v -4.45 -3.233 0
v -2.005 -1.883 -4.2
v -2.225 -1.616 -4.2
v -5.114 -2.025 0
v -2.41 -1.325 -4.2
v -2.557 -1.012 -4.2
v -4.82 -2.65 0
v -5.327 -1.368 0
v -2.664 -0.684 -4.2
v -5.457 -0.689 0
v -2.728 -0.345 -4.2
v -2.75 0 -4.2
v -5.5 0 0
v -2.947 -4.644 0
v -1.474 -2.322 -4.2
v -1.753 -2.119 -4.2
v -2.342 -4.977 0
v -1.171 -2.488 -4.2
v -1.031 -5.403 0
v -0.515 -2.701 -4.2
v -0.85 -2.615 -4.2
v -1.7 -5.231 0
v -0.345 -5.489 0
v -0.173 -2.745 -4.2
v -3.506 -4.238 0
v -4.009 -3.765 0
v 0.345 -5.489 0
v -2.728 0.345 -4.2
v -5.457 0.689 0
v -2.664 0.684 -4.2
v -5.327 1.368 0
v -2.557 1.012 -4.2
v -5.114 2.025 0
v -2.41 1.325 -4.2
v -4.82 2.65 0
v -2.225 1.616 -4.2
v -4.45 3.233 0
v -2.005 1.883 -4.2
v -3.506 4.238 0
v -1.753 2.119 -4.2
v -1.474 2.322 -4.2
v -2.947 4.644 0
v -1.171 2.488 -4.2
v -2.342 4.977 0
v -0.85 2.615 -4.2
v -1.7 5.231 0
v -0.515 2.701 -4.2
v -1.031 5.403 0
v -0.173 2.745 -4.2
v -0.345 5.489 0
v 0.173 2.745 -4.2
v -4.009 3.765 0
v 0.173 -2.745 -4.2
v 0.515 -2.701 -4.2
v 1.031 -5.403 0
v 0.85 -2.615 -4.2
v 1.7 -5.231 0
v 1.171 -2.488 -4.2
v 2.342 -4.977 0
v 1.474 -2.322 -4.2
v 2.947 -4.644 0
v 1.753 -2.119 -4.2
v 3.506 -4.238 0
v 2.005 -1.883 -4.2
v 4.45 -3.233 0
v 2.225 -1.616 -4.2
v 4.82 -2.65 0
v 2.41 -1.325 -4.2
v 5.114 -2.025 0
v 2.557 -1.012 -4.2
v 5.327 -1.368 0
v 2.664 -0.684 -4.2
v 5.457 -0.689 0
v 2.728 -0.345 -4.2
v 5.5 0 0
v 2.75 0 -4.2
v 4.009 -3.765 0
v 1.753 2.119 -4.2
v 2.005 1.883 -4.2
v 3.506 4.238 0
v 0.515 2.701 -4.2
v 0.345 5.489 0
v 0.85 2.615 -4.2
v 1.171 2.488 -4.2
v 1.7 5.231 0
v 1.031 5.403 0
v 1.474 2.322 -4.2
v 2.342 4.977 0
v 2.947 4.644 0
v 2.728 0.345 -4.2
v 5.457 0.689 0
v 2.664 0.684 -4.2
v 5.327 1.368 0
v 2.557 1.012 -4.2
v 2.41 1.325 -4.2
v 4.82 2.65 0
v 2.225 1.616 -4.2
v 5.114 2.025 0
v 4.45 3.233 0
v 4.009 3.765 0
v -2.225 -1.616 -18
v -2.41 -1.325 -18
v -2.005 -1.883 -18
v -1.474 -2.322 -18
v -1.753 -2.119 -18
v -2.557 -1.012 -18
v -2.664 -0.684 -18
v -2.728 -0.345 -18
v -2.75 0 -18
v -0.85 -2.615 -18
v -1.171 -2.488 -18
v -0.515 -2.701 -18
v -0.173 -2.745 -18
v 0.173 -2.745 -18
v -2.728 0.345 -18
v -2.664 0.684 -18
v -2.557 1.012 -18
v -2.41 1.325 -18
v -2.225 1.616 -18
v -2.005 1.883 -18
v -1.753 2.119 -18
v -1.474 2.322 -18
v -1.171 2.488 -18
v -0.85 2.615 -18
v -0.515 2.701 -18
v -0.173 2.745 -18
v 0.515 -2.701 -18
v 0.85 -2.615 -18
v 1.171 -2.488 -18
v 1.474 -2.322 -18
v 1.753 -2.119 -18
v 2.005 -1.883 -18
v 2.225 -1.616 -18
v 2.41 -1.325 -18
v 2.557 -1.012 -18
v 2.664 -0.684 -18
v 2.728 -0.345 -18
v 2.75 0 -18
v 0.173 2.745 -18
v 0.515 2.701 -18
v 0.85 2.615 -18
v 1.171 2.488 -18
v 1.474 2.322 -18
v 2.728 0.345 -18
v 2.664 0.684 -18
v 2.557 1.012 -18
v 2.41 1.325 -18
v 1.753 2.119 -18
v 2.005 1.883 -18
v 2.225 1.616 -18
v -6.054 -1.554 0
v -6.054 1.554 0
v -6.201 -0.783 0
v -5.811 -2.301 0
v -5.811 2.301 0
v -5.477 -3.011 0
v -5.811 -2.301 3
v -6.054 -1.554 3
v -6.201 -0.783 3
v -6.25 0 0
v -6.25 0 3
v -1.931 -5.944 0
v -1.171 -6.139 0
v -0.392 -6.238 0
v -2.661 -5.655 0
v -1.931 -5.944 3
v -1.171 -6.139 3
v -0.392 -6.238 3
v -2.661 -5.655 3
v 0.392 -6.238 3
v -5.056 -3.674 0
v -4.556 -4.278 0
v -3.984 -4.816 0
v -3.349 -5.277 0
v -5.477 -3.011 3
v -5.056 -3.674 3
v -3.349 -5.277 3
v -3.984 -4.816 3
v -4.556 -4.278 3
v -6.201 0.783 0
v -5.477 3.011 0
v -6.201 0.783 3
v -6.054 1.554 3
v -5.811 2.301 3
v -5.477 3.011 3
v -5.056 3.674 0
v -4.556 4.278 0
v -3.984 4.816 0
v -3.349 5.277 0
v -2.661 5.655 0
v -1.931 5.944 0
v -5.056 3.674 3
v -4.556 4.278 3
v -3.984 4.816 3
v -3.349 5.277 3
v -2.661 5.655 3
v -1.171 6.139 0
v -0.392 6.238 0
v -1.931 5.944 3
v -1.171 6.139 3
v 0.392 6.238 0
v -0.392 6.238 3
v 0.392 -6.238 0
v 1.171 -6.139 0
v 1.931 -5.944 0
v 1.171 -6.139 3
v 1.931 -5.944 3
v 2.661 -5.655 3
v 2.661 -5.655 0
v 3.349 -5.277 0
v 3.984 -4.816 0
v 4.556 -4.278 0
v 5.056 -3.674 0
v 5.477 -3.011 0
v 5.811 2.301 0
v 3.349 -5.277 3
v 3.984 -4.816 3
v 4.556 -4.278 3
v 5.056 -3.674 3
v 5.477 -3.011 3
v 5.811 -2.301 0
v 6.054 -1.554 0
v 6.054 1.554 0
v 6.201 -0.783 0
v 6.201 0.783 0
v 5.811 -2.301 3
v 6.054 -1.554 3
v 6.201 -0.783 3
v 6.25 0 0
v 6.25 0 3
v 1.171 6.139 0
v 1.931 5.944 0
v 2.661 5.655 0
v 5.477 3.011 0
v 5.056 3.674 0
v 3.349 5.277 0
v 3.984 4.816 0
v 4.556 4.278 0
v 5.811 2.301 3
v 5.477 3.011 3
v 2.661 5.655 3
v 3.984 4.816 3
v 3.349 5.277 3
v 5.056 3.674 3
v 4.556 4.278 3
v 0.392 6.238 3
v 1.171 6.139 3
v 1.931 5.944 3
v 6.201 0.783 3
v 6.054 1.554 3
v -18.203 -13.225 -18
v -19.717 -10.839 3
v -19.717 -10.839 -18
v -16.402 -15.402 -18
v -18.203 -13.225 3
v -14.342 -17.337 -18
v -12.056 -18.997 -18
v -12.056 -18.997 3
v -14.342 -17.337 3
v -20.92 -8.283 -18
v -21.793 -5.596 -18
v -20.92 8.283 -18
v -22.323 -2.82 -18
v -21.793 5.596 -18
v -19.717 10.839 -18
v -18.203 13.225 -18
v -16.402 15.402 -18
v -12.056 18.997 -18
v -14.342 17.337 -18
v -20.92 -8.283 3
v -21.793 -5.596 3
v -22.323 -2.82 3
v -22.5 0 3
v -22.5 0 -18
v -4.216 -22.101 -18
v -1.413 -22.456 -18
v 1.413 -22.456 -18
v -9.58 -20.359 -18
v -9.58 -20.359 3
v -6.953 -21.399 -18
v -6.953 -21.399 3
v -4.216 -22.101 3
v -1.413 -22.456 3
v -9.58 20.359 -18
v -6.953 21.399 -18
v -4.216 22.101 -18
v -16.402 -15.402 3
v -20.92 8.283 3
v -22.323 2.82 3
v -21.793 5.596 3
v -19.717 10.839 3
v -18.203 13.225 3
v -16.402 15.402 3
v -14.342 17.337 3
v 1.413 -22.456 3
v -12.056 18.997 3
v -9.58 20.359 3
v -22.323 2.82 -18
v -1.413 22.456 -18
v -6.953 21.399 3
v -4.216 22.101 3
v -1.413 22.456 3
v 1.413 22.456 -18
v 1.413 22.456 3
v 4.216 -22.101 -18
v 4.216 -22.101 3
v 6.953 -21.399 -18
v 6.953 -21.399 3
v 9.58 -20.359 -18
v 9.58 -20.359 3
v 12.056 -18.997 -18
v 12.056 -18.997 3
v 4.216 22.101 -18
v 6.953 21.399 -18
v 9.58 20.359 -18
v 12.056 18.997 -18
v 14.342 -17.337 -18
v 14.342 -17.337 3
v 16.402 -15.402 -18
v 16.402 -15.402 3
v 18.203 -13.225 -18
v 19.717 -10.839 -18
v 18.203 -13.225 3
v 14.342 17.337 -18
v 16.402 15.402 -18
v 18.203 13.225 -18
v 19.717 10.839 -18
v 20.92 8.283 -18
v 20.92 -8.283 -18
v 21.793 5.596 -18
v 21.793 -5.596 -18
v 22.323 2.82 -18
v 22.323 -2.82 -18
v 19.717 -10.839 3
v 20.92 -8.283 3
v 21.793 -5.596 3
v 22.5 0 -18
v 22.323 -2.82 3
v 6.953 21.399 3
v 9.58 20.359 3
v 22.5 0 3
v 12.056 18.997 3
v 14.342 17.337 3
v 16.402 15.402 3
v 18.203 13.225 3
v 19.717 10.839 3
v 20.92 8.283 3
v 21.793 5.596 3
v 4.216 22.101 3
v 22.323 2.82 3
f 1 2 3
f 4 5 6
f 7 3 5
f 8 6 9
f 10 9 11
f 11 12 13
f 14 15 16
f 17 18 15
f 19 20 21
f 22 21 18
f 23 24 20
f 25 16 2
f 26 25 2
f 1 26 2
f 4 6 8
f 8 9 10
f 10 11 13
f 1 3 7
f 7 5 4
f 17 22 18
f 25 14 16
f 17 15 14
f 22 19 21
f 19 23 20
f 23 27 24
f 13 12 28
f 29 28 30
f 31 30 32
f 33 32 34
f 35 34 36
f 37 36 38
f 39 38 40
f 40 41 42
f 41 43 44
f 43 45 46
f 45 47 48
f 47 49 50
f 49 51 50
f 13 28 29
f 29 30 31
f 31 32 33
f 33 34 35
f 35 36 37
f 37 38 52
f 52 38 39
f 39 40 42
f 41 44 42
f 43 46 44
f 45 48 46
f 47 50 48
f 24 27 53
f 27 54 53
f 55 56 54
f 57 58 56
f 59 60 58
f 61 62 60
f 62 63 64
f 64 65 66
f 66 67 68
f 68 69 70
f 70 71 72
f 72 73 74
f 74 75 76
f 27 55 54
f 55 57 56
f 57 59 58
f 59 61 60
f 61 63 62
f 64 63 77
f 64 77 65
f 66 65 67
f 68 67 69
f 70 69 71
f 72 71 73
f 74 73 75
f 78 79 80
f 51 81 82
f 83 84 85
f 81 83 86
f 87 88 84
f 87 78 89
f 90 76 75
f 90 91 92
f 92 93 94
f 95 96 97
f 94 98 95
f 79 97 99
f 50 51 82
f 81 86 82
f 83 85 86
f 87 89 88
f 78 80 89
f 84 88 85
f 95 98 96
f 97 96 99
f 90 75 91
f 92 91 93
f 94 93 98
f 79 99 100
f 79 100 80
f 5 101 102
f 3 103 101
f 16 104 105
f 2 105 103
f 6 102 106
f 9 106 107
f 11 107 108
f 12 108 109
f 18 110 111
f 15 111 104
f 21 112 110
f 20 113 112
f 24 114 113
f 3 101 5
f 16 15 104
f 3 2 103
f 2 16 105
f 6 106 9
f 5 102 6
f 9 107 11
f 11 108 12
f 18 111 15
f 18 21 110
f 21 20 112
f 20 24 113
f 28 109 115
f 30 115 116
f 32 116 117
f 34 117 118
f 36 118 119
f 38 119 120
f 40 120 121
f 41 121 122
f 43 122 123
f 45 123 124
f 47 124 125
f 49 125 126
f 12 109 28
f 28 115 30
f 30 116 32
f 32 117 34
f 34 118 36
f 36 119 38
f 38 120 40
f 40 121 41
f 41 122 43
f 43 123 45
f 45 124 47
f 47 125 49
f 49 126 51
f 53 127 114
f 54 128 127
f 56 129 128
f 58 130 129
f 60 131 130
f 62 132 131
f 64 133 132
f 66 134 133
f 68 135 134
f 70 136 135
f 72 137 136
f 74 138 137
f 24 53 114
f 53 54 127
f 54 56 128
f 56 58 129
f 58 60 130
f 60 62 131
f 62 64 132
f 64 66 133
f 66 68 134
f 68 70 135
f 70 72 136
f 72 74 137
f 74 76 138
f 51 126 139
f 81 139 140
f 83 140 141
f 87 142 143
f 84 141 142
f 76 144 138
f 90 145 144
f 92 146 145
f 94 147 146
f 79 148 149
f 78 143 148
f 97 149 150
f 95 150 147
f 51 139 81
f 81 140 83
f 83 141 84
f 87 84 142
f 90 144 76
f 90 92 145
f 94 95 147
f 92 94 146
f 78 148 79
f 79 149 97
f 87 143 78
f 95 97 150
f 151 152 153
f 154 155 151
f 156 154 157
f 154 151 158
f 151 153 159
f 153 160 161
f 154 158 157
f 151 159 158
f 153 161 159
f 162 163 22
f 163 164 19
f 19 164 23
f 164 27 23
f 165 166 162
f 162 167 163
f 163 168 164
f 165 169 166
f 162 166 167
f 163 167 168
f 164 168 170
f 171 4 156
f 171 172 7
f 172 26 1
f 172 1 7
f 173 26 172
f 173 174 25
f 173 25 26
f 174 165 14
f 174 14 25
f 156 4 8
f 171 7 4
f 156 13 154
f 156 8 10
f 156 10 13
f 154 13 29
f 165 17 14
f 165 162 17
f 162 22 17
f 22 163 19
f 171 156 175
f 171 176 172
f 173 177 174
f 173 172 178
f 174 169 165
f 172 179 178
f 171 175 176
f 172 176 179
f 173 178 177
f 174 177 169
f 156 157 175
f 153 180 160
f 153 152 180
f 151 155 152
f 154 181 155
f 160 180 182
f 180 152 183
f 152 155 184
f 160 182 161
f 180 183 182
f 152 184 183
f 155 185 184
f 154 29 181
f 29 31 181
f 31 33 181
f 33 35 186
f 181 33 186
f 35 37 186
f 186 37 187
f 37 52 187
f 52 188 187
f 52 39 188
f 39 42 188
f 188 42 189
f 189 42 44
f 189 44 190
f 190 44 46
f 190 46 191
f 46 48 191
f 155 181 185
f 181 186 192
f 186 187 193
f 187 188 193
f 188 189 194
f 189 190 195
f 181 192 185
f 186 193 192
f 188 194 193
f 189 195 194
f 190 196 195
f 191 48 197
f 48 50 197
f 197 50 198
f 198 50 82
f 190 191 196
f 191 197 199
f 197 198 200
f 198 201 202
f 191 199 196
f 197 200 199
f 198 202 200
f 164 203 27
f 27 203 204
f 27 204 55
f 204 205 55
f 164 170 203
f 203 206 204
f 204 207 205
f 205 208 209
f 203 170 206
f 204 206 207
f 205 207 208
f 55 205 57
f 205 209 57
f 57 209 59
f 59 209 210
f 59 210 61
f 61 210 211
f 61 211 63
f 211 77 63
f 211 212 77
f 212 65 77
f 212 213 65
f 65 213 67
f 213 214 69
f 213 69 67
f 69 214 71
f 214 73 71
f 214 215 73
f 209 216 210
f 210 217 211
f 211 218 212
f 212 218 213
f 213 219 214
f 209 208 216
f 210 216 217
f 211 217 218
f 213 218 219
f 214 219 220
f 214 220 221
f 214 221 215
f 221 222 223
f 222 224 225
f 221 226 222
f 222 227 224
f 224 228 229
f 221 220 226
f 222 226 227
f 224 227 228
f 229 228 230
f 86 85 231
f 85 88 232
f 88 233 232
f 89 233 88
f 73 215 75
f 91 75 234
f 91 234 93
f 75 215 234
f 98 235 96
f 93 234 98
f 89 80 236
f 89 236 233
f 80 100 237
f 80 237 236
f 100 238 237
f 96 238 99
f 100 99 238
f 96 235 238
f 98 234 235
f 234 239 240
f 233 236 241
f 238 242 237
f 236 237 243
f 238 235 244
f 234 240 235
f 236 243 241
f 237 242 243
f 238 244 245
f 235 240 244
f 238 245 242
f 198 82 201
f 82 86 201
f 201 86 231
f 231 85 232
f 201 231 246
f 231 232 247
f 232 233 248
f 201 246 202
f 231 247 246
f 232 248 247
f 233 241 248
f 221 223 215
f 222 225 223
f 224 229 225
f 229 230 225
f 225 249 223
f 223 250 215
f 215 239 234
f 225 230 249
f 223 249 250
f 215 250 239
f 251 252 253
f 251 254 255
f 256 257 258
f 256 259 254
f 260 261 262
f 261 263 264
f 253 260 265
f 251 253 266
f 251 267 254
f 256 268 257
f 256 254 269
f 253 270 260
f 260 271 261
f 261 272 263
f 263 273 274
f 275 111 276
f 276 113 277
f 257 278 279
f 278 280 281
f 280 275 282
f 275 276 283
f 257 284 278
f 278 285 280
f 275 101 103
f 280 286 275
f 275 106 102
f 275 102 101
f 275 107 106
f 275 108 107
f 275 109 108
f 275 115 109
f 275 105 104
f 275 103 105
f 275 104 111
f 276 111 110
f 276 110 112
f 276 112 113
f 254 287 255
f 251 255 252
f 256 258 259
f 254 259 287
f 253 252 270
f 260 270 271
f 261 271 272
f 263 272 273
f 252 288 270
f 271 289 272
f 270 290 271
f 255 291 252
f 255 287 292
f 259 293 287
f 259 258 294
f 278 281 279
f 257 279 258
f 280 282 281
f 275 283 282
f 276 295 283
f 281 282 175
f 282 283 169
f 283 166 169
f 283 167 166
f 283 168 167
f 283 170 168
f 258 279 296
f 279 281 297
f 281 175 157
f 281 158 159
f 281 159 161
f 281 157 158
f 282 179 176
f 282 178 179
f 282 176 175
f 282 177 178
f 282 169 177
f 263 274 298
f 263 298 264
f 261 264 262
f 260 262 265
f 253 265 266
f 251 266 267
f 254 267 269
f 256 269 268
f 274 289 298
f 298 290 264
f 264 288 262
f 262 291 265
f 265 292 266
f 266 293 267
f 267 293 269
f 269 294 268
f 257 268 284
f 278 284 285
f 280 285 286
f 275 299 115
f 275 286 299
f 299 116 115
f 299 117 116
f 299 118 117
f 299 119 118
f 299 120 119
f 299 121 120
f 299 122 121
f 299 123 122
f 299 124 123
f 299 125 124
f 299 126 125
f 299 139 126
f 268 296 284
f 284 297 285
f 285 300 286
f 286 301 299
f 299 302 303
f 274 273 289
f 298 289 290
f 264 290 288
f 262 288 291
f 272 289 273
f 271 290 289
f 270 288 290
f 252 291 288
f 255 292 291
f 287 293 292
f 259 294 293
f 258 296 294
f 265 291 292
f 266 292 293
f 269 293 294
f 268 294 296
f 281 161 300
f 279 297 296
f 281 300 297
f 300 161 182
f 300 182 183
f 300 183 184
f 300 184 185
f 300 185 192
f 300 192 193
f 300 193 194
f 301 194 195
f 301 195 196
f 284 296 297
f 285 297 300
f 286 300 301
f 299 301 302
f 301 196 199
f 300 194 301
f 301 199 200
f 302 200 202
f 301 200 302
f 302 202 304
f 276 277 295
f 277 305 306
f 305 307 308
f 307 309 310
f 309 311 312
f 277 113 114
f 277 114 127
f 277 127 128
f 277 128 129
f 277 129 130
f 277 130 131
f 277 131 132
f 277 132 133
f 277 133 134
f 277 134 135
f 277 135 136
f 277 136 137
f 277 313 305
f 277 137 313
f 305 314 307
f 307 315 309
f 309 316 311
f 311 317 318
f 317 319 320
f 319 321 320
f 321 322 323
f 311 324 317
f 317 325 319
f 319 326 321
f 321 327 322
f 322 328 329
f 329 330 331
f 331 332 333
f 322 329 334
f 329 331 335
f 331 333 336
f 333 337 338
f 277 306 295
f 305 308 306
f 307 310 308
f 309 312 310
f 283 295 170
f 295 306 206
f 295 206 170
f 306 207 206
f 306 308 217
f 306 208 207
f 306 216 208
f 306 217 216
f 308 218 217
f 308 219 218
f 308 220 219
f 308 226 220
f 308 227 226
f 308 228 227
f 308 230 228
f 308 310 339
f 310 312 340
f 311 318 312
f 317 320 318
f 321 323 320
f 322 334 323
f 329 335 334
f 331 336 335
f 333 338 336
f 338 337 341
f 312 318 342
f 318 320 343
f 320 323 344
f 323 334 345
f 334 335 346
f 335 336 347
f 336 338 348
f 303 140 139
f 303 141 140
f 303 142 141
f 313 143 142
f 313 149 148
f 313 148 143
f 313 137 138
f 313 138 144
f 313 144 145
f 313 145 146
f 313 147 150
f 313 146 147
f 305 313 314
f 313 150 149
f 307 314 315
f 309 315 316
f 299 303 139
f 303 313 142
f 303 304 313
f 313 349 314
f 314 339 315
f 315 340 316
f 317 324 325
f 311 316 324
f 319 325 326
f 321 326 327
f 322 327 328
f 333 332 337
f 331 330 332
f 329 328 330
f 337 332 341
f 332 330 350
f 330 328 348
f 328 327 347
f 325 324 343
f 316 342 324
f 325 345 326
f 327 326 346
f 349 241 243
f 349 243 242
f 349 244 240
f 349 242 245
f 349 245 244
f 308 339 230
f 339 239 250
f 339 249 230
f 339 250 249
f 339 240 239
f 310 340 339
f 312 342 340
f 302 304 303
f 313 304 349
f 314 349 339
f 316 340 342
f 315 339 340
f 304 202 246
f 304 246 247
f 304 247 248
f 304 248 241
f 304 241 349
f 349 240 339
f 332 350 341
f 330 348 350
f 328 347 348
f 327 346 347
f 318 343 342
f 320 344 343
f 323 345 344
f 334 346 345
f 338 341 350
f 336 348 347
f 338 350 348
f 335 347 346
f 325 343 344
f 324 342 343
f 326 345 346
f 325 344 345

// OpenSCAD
$fn = 50;

difference() {
	union() {
		translate(v = [0, 0, -18.0]) {
			cylinder(h = 21, r = 22.5);
		}
	}
	union() {
		translate(v = [0, 0, 0]) {
			rotate(a = [0, 0, 0]) {
				difference() {
					union() {
						translate(v = [0, 0, -21.0]) {
							cylinder(h = 21, r = 2.25);
						}
						translate(v = [0, 0, -4.2]) {
							cylinder(h = 4.2, r1 = 2.75, r2 = 5.5);
						}
						translate(v = [0, 0, -21.0]) {
							cylinder(h = 21, r = 2.75);
						}
						translate(v = [0, 0, -21.0]) {
							cylinder(h = 21, r = 2.25);
						}
					}
					union();
				}
			}
		}
		#cylinder(h = 3, r = 6.25);
	}
}
